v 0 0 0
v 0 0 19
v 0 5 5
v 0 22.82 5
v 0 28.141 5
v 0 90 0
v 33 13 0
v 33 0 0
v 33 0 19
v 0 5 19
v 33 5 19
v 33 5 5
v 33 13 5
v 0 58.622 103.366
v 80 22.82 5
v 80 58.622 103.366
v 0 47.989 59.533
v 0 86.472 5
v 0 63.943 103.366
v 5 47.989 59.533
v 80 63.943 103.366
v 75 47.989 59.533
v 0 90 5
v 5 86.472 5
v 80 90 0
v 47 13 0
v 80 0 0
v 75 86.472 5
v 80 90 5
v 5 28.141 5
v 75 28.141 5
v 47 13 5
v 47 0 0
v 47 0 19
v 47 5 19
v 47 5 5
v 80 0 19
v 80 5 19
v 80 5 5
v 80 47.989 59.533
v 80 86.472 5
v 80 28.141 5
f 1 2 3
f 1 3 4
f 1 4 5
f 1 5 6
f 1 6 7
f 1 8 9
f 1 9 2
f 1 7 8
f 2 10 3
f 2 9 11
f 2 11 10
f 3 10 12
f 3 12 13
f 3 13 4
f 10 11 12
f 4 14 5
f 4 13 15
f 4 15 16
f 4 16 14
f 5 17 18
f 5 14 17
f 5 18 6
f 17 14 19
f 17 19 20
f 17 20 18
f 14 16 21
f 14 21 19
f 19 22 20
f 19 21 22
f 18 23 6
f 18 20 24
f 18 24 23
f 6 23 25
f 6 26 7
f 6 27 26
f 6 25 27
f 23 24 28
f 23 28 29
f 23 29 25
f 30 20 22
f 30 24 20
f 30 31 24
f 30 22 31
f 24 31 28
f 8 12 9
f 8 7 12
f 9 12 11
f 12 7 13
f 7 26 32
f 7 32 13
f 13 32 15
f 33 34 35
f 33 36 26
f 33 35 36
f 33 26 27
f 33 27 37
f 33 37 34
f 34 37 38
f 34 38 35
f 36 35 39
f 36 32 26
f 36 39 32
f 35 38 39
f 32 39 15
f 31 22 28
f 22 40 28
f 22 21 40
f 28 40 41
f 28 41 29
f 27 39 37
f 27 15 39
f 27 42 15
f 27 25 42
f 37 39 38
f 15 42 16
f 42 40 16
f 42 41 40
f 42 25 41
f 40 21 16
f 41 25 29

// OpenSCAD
// Phone stand: base, tilted back plate with two side ribs, front lip with a cable slot.

// Stand width (mm)
width = 80; // [50:1:160]
// Base depth, front to back (mm)
depth = 90; // [70:1:140]
// Back plate length along the slope (mm)
height = 110; // [60:1:140]
// Back plate angle from the table (degrees)
angle = 70; // [55:1:80]
// Front lip height above the base (mm)
lip = 14; // [6:1:30]
// Wall thickness (mm)
thickness = 5; // [3:0.5:8]
// Charging cable slot width (mm)
cable_slot = 14; // [8:1:30]

/* [Hidden] */
// room between the lip and the back plate for the phone
gap = 16;

foot = thickness / sin(angle);
back_y = thickness + gap;
top_y = back_y + height * cos(angle);
top_z = height * sin(angle);

module side_profile() {
  square([depth, thickness]);
  square([thickness, thickness + lip]);
  polygon([
    [back_y, 0],
    [back_y + foot, 0],
    [top_y + foot, top_z],
    [top_y, top_z],
  ]);
}

// the rib starts and ends inside the back plate, so the two join as one solid
module rib_profile() {
  polygon([
    [back_y + foot / 2, 0],
    [max(depth, back_y + foot), 0],
    [back_y + foot / 2 + 0.6 * height * cos(angle), 0.6 * top_z],
  ]);
}

// turns a side view drawn in (y, z) into a solid running along x
module along_x(length) {
  rotate([90, 0, 90]) linear_extrude(length) children();
}

difference() {
  union() {
    along_x(width) side_profile();
    along_x(thickness) rib_profile();
    translate([width - thickness, 0, 0]) along_x(thickness) rib_profile();
  }
  translate([(width - cable_slot) / 2, -1, -1])
    cube([cable_slot, thickness + gap / 2 + 1, thickness + lip + 2]);
}
